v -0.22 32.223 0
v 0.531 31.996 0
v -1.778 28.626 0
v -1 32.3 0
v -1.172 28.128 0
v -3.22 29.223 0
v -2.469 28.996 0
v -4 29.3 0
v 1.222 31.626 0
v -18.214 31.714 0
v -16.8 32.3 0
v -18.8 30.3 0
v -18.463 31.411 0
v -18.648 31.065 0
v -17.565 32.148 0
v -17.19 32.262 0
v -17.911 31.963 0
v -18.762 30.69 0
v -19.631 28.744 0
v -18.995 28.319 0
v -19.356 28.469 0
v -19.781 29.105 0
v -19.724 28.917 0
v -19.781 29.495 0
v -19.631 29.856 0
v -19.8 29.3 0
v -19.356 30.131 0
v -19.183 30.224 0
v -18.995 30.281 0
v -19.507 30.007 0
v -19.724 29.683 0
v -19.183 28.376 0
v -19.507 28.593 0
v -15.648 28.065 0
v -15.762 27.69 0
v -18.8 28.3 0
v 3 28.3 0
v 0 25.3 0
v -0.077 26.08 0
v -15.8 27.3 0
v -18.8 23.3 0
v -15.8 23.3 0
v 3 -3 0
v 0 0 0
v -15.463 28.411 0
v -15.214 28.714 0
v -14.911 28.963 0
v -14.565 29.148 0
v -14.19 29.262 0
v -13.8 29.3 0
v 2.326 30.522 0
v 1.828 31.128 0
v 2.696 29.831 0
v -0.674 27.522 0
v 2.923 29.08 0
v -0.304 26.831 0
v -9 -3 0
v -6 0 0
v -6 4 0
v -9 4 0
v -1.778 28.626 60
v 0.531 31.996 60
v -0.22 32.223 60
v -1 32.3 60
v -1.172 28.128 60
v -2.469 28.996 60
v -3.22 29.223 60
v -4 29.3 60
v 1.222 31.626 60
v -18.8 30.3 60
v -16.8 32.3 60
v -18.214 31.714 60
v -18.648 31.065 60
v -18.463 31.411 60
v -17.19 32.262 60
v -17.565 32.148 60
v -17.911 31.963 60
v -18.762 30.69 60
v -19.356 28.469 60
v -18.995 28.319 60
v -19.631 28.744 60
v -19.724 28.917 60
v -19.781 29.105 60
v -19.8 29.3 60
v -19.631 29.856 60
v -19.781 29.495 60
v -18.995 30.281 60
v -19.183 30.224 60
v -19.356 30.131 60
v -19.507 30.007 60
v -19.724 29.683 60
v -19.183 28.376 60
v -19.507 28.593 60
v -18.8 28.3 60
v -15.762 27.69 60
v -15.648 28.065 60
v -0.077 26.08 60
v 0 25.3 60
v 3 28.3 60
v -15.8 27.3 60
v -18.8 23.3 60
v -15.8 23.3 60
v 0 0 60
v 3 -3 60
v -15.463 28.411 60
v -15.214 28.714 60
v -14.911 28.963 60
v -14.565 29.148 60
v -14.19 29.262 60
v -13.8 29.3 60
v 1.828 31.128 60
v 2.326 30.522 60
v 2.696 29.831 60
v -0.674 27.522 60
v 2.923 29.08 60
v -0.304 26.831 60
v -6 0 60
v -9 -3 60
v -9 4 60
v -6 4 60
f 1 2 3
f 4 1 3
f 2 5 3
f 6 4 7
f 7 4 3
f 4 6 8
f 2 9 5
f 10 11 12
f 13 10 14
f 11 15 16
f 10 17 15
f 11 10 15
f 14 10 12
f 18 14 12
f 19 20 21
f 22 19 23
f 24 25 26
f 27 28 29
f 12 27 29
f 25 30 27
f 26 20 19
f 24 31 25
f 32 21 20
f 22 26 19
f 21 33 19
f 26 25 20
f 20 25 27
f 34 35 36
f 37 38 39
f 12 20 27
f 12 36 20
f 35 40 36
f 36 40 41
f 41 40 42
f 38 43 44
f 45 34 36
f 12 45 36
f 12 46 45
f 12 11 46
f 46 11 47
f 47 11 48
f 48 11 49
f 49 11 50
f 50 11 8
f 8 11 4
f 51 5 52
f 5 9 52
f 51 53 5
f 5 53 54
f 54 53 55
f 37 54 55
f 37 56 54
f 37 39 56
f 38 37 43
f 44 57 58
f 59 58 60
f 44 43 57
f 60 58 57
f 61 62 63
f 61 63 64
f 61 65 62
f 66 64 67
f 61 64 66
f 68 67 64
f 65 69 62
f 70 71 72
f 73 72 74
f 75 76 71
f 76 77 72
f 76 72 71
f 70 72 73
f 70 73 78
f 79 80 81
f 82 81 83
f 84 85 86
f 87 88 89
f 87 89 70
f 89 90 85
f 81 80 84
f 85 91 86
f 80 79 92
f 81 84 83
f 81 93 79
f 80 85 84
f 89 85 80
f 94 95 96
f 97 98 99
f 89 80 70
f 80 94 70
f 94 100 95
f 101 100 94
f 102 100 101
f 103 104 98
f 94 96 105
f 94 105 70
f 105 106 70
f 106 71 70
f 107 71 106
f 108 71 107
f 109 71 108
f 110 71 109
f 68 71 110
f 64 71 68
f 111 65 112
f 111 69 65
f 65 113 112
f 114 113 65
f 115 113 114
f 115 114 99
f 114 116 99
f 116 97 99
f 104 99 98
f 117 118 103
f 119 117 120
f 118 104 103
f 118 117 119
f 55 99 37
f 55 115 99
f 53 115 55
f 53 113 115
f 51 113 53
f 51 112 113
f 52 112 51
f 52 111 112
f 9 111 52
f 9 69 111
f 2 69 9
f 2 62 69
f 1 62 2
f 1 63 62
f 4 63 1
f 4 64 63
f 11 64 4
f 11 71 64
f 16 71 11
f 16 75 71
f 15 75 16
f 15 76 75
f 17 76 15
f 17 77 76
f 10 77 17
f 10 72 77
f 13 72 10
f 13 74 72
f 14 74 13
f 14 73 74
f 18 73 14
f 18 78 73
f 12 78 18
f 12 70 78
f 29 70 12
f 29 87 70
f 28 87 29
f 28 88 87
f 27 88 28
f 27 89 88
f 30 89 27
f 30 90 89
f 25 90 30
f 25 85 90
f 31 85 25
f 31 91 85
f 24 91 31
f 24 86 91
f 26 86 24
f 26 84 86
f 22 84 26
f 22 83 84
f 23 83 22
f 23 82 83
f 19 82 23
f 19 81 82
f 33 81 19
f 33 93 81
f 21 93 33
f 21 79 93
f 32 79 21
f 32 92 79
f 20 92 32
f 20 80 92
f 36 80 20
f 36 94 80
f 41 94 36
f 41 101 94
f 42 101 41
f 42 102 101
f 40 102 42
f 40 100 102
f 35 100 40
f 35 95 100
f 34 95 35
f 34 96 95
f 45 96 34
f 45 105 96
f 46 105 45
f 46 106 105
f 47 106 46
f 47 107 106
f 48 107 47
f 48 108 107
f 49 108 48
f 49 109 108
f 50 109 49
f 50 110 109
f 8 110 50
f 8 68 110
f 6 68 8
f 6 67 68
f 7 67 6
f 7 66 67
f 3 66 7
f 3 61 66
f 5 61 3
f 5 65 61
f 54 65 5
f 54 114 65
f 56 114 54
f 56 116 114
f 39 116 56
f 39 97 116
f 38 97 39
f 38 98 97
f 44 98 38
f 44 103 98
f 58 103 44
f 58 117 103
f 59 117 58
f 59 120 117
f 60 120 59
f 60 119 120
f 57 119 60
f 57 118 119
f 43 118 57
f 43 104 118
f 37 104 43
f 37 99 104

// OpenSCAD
//Measurements
h=29.3;
w1=15.8;
w2=6;
d1=6;
d2=4;
r1=4;
r2=2;
b=3;
$fn=32;

//Inside
module Inside() {
  translate([-w2,0,0]) square([w2,h-r1]);
  hull() {
    translate([-r1,h-r1,0]) circle(r=r1);
    translate([-w1+r2,h-r2,0]) circle(r=r2);
    translate([-w1,h/2-r1,0]) square([w1,h/2]);
  }
}
//Inside();

//Outside
module Outside() {
    minkowski() {
      square(2*b,center=true);
      Inside();
    }
}
//Outside();

module Profile() {
    difference() {
      union() {
        Outside();
        translate([-w1-b,h,0]) circle(r=1);
      }
      union() {
        Inside();
        translate([-w1-10,d2,0]) square([w1+10,h-d1-d2]);
      }
  }
}  
//Profile();

linear_extrude(60) Profile();
